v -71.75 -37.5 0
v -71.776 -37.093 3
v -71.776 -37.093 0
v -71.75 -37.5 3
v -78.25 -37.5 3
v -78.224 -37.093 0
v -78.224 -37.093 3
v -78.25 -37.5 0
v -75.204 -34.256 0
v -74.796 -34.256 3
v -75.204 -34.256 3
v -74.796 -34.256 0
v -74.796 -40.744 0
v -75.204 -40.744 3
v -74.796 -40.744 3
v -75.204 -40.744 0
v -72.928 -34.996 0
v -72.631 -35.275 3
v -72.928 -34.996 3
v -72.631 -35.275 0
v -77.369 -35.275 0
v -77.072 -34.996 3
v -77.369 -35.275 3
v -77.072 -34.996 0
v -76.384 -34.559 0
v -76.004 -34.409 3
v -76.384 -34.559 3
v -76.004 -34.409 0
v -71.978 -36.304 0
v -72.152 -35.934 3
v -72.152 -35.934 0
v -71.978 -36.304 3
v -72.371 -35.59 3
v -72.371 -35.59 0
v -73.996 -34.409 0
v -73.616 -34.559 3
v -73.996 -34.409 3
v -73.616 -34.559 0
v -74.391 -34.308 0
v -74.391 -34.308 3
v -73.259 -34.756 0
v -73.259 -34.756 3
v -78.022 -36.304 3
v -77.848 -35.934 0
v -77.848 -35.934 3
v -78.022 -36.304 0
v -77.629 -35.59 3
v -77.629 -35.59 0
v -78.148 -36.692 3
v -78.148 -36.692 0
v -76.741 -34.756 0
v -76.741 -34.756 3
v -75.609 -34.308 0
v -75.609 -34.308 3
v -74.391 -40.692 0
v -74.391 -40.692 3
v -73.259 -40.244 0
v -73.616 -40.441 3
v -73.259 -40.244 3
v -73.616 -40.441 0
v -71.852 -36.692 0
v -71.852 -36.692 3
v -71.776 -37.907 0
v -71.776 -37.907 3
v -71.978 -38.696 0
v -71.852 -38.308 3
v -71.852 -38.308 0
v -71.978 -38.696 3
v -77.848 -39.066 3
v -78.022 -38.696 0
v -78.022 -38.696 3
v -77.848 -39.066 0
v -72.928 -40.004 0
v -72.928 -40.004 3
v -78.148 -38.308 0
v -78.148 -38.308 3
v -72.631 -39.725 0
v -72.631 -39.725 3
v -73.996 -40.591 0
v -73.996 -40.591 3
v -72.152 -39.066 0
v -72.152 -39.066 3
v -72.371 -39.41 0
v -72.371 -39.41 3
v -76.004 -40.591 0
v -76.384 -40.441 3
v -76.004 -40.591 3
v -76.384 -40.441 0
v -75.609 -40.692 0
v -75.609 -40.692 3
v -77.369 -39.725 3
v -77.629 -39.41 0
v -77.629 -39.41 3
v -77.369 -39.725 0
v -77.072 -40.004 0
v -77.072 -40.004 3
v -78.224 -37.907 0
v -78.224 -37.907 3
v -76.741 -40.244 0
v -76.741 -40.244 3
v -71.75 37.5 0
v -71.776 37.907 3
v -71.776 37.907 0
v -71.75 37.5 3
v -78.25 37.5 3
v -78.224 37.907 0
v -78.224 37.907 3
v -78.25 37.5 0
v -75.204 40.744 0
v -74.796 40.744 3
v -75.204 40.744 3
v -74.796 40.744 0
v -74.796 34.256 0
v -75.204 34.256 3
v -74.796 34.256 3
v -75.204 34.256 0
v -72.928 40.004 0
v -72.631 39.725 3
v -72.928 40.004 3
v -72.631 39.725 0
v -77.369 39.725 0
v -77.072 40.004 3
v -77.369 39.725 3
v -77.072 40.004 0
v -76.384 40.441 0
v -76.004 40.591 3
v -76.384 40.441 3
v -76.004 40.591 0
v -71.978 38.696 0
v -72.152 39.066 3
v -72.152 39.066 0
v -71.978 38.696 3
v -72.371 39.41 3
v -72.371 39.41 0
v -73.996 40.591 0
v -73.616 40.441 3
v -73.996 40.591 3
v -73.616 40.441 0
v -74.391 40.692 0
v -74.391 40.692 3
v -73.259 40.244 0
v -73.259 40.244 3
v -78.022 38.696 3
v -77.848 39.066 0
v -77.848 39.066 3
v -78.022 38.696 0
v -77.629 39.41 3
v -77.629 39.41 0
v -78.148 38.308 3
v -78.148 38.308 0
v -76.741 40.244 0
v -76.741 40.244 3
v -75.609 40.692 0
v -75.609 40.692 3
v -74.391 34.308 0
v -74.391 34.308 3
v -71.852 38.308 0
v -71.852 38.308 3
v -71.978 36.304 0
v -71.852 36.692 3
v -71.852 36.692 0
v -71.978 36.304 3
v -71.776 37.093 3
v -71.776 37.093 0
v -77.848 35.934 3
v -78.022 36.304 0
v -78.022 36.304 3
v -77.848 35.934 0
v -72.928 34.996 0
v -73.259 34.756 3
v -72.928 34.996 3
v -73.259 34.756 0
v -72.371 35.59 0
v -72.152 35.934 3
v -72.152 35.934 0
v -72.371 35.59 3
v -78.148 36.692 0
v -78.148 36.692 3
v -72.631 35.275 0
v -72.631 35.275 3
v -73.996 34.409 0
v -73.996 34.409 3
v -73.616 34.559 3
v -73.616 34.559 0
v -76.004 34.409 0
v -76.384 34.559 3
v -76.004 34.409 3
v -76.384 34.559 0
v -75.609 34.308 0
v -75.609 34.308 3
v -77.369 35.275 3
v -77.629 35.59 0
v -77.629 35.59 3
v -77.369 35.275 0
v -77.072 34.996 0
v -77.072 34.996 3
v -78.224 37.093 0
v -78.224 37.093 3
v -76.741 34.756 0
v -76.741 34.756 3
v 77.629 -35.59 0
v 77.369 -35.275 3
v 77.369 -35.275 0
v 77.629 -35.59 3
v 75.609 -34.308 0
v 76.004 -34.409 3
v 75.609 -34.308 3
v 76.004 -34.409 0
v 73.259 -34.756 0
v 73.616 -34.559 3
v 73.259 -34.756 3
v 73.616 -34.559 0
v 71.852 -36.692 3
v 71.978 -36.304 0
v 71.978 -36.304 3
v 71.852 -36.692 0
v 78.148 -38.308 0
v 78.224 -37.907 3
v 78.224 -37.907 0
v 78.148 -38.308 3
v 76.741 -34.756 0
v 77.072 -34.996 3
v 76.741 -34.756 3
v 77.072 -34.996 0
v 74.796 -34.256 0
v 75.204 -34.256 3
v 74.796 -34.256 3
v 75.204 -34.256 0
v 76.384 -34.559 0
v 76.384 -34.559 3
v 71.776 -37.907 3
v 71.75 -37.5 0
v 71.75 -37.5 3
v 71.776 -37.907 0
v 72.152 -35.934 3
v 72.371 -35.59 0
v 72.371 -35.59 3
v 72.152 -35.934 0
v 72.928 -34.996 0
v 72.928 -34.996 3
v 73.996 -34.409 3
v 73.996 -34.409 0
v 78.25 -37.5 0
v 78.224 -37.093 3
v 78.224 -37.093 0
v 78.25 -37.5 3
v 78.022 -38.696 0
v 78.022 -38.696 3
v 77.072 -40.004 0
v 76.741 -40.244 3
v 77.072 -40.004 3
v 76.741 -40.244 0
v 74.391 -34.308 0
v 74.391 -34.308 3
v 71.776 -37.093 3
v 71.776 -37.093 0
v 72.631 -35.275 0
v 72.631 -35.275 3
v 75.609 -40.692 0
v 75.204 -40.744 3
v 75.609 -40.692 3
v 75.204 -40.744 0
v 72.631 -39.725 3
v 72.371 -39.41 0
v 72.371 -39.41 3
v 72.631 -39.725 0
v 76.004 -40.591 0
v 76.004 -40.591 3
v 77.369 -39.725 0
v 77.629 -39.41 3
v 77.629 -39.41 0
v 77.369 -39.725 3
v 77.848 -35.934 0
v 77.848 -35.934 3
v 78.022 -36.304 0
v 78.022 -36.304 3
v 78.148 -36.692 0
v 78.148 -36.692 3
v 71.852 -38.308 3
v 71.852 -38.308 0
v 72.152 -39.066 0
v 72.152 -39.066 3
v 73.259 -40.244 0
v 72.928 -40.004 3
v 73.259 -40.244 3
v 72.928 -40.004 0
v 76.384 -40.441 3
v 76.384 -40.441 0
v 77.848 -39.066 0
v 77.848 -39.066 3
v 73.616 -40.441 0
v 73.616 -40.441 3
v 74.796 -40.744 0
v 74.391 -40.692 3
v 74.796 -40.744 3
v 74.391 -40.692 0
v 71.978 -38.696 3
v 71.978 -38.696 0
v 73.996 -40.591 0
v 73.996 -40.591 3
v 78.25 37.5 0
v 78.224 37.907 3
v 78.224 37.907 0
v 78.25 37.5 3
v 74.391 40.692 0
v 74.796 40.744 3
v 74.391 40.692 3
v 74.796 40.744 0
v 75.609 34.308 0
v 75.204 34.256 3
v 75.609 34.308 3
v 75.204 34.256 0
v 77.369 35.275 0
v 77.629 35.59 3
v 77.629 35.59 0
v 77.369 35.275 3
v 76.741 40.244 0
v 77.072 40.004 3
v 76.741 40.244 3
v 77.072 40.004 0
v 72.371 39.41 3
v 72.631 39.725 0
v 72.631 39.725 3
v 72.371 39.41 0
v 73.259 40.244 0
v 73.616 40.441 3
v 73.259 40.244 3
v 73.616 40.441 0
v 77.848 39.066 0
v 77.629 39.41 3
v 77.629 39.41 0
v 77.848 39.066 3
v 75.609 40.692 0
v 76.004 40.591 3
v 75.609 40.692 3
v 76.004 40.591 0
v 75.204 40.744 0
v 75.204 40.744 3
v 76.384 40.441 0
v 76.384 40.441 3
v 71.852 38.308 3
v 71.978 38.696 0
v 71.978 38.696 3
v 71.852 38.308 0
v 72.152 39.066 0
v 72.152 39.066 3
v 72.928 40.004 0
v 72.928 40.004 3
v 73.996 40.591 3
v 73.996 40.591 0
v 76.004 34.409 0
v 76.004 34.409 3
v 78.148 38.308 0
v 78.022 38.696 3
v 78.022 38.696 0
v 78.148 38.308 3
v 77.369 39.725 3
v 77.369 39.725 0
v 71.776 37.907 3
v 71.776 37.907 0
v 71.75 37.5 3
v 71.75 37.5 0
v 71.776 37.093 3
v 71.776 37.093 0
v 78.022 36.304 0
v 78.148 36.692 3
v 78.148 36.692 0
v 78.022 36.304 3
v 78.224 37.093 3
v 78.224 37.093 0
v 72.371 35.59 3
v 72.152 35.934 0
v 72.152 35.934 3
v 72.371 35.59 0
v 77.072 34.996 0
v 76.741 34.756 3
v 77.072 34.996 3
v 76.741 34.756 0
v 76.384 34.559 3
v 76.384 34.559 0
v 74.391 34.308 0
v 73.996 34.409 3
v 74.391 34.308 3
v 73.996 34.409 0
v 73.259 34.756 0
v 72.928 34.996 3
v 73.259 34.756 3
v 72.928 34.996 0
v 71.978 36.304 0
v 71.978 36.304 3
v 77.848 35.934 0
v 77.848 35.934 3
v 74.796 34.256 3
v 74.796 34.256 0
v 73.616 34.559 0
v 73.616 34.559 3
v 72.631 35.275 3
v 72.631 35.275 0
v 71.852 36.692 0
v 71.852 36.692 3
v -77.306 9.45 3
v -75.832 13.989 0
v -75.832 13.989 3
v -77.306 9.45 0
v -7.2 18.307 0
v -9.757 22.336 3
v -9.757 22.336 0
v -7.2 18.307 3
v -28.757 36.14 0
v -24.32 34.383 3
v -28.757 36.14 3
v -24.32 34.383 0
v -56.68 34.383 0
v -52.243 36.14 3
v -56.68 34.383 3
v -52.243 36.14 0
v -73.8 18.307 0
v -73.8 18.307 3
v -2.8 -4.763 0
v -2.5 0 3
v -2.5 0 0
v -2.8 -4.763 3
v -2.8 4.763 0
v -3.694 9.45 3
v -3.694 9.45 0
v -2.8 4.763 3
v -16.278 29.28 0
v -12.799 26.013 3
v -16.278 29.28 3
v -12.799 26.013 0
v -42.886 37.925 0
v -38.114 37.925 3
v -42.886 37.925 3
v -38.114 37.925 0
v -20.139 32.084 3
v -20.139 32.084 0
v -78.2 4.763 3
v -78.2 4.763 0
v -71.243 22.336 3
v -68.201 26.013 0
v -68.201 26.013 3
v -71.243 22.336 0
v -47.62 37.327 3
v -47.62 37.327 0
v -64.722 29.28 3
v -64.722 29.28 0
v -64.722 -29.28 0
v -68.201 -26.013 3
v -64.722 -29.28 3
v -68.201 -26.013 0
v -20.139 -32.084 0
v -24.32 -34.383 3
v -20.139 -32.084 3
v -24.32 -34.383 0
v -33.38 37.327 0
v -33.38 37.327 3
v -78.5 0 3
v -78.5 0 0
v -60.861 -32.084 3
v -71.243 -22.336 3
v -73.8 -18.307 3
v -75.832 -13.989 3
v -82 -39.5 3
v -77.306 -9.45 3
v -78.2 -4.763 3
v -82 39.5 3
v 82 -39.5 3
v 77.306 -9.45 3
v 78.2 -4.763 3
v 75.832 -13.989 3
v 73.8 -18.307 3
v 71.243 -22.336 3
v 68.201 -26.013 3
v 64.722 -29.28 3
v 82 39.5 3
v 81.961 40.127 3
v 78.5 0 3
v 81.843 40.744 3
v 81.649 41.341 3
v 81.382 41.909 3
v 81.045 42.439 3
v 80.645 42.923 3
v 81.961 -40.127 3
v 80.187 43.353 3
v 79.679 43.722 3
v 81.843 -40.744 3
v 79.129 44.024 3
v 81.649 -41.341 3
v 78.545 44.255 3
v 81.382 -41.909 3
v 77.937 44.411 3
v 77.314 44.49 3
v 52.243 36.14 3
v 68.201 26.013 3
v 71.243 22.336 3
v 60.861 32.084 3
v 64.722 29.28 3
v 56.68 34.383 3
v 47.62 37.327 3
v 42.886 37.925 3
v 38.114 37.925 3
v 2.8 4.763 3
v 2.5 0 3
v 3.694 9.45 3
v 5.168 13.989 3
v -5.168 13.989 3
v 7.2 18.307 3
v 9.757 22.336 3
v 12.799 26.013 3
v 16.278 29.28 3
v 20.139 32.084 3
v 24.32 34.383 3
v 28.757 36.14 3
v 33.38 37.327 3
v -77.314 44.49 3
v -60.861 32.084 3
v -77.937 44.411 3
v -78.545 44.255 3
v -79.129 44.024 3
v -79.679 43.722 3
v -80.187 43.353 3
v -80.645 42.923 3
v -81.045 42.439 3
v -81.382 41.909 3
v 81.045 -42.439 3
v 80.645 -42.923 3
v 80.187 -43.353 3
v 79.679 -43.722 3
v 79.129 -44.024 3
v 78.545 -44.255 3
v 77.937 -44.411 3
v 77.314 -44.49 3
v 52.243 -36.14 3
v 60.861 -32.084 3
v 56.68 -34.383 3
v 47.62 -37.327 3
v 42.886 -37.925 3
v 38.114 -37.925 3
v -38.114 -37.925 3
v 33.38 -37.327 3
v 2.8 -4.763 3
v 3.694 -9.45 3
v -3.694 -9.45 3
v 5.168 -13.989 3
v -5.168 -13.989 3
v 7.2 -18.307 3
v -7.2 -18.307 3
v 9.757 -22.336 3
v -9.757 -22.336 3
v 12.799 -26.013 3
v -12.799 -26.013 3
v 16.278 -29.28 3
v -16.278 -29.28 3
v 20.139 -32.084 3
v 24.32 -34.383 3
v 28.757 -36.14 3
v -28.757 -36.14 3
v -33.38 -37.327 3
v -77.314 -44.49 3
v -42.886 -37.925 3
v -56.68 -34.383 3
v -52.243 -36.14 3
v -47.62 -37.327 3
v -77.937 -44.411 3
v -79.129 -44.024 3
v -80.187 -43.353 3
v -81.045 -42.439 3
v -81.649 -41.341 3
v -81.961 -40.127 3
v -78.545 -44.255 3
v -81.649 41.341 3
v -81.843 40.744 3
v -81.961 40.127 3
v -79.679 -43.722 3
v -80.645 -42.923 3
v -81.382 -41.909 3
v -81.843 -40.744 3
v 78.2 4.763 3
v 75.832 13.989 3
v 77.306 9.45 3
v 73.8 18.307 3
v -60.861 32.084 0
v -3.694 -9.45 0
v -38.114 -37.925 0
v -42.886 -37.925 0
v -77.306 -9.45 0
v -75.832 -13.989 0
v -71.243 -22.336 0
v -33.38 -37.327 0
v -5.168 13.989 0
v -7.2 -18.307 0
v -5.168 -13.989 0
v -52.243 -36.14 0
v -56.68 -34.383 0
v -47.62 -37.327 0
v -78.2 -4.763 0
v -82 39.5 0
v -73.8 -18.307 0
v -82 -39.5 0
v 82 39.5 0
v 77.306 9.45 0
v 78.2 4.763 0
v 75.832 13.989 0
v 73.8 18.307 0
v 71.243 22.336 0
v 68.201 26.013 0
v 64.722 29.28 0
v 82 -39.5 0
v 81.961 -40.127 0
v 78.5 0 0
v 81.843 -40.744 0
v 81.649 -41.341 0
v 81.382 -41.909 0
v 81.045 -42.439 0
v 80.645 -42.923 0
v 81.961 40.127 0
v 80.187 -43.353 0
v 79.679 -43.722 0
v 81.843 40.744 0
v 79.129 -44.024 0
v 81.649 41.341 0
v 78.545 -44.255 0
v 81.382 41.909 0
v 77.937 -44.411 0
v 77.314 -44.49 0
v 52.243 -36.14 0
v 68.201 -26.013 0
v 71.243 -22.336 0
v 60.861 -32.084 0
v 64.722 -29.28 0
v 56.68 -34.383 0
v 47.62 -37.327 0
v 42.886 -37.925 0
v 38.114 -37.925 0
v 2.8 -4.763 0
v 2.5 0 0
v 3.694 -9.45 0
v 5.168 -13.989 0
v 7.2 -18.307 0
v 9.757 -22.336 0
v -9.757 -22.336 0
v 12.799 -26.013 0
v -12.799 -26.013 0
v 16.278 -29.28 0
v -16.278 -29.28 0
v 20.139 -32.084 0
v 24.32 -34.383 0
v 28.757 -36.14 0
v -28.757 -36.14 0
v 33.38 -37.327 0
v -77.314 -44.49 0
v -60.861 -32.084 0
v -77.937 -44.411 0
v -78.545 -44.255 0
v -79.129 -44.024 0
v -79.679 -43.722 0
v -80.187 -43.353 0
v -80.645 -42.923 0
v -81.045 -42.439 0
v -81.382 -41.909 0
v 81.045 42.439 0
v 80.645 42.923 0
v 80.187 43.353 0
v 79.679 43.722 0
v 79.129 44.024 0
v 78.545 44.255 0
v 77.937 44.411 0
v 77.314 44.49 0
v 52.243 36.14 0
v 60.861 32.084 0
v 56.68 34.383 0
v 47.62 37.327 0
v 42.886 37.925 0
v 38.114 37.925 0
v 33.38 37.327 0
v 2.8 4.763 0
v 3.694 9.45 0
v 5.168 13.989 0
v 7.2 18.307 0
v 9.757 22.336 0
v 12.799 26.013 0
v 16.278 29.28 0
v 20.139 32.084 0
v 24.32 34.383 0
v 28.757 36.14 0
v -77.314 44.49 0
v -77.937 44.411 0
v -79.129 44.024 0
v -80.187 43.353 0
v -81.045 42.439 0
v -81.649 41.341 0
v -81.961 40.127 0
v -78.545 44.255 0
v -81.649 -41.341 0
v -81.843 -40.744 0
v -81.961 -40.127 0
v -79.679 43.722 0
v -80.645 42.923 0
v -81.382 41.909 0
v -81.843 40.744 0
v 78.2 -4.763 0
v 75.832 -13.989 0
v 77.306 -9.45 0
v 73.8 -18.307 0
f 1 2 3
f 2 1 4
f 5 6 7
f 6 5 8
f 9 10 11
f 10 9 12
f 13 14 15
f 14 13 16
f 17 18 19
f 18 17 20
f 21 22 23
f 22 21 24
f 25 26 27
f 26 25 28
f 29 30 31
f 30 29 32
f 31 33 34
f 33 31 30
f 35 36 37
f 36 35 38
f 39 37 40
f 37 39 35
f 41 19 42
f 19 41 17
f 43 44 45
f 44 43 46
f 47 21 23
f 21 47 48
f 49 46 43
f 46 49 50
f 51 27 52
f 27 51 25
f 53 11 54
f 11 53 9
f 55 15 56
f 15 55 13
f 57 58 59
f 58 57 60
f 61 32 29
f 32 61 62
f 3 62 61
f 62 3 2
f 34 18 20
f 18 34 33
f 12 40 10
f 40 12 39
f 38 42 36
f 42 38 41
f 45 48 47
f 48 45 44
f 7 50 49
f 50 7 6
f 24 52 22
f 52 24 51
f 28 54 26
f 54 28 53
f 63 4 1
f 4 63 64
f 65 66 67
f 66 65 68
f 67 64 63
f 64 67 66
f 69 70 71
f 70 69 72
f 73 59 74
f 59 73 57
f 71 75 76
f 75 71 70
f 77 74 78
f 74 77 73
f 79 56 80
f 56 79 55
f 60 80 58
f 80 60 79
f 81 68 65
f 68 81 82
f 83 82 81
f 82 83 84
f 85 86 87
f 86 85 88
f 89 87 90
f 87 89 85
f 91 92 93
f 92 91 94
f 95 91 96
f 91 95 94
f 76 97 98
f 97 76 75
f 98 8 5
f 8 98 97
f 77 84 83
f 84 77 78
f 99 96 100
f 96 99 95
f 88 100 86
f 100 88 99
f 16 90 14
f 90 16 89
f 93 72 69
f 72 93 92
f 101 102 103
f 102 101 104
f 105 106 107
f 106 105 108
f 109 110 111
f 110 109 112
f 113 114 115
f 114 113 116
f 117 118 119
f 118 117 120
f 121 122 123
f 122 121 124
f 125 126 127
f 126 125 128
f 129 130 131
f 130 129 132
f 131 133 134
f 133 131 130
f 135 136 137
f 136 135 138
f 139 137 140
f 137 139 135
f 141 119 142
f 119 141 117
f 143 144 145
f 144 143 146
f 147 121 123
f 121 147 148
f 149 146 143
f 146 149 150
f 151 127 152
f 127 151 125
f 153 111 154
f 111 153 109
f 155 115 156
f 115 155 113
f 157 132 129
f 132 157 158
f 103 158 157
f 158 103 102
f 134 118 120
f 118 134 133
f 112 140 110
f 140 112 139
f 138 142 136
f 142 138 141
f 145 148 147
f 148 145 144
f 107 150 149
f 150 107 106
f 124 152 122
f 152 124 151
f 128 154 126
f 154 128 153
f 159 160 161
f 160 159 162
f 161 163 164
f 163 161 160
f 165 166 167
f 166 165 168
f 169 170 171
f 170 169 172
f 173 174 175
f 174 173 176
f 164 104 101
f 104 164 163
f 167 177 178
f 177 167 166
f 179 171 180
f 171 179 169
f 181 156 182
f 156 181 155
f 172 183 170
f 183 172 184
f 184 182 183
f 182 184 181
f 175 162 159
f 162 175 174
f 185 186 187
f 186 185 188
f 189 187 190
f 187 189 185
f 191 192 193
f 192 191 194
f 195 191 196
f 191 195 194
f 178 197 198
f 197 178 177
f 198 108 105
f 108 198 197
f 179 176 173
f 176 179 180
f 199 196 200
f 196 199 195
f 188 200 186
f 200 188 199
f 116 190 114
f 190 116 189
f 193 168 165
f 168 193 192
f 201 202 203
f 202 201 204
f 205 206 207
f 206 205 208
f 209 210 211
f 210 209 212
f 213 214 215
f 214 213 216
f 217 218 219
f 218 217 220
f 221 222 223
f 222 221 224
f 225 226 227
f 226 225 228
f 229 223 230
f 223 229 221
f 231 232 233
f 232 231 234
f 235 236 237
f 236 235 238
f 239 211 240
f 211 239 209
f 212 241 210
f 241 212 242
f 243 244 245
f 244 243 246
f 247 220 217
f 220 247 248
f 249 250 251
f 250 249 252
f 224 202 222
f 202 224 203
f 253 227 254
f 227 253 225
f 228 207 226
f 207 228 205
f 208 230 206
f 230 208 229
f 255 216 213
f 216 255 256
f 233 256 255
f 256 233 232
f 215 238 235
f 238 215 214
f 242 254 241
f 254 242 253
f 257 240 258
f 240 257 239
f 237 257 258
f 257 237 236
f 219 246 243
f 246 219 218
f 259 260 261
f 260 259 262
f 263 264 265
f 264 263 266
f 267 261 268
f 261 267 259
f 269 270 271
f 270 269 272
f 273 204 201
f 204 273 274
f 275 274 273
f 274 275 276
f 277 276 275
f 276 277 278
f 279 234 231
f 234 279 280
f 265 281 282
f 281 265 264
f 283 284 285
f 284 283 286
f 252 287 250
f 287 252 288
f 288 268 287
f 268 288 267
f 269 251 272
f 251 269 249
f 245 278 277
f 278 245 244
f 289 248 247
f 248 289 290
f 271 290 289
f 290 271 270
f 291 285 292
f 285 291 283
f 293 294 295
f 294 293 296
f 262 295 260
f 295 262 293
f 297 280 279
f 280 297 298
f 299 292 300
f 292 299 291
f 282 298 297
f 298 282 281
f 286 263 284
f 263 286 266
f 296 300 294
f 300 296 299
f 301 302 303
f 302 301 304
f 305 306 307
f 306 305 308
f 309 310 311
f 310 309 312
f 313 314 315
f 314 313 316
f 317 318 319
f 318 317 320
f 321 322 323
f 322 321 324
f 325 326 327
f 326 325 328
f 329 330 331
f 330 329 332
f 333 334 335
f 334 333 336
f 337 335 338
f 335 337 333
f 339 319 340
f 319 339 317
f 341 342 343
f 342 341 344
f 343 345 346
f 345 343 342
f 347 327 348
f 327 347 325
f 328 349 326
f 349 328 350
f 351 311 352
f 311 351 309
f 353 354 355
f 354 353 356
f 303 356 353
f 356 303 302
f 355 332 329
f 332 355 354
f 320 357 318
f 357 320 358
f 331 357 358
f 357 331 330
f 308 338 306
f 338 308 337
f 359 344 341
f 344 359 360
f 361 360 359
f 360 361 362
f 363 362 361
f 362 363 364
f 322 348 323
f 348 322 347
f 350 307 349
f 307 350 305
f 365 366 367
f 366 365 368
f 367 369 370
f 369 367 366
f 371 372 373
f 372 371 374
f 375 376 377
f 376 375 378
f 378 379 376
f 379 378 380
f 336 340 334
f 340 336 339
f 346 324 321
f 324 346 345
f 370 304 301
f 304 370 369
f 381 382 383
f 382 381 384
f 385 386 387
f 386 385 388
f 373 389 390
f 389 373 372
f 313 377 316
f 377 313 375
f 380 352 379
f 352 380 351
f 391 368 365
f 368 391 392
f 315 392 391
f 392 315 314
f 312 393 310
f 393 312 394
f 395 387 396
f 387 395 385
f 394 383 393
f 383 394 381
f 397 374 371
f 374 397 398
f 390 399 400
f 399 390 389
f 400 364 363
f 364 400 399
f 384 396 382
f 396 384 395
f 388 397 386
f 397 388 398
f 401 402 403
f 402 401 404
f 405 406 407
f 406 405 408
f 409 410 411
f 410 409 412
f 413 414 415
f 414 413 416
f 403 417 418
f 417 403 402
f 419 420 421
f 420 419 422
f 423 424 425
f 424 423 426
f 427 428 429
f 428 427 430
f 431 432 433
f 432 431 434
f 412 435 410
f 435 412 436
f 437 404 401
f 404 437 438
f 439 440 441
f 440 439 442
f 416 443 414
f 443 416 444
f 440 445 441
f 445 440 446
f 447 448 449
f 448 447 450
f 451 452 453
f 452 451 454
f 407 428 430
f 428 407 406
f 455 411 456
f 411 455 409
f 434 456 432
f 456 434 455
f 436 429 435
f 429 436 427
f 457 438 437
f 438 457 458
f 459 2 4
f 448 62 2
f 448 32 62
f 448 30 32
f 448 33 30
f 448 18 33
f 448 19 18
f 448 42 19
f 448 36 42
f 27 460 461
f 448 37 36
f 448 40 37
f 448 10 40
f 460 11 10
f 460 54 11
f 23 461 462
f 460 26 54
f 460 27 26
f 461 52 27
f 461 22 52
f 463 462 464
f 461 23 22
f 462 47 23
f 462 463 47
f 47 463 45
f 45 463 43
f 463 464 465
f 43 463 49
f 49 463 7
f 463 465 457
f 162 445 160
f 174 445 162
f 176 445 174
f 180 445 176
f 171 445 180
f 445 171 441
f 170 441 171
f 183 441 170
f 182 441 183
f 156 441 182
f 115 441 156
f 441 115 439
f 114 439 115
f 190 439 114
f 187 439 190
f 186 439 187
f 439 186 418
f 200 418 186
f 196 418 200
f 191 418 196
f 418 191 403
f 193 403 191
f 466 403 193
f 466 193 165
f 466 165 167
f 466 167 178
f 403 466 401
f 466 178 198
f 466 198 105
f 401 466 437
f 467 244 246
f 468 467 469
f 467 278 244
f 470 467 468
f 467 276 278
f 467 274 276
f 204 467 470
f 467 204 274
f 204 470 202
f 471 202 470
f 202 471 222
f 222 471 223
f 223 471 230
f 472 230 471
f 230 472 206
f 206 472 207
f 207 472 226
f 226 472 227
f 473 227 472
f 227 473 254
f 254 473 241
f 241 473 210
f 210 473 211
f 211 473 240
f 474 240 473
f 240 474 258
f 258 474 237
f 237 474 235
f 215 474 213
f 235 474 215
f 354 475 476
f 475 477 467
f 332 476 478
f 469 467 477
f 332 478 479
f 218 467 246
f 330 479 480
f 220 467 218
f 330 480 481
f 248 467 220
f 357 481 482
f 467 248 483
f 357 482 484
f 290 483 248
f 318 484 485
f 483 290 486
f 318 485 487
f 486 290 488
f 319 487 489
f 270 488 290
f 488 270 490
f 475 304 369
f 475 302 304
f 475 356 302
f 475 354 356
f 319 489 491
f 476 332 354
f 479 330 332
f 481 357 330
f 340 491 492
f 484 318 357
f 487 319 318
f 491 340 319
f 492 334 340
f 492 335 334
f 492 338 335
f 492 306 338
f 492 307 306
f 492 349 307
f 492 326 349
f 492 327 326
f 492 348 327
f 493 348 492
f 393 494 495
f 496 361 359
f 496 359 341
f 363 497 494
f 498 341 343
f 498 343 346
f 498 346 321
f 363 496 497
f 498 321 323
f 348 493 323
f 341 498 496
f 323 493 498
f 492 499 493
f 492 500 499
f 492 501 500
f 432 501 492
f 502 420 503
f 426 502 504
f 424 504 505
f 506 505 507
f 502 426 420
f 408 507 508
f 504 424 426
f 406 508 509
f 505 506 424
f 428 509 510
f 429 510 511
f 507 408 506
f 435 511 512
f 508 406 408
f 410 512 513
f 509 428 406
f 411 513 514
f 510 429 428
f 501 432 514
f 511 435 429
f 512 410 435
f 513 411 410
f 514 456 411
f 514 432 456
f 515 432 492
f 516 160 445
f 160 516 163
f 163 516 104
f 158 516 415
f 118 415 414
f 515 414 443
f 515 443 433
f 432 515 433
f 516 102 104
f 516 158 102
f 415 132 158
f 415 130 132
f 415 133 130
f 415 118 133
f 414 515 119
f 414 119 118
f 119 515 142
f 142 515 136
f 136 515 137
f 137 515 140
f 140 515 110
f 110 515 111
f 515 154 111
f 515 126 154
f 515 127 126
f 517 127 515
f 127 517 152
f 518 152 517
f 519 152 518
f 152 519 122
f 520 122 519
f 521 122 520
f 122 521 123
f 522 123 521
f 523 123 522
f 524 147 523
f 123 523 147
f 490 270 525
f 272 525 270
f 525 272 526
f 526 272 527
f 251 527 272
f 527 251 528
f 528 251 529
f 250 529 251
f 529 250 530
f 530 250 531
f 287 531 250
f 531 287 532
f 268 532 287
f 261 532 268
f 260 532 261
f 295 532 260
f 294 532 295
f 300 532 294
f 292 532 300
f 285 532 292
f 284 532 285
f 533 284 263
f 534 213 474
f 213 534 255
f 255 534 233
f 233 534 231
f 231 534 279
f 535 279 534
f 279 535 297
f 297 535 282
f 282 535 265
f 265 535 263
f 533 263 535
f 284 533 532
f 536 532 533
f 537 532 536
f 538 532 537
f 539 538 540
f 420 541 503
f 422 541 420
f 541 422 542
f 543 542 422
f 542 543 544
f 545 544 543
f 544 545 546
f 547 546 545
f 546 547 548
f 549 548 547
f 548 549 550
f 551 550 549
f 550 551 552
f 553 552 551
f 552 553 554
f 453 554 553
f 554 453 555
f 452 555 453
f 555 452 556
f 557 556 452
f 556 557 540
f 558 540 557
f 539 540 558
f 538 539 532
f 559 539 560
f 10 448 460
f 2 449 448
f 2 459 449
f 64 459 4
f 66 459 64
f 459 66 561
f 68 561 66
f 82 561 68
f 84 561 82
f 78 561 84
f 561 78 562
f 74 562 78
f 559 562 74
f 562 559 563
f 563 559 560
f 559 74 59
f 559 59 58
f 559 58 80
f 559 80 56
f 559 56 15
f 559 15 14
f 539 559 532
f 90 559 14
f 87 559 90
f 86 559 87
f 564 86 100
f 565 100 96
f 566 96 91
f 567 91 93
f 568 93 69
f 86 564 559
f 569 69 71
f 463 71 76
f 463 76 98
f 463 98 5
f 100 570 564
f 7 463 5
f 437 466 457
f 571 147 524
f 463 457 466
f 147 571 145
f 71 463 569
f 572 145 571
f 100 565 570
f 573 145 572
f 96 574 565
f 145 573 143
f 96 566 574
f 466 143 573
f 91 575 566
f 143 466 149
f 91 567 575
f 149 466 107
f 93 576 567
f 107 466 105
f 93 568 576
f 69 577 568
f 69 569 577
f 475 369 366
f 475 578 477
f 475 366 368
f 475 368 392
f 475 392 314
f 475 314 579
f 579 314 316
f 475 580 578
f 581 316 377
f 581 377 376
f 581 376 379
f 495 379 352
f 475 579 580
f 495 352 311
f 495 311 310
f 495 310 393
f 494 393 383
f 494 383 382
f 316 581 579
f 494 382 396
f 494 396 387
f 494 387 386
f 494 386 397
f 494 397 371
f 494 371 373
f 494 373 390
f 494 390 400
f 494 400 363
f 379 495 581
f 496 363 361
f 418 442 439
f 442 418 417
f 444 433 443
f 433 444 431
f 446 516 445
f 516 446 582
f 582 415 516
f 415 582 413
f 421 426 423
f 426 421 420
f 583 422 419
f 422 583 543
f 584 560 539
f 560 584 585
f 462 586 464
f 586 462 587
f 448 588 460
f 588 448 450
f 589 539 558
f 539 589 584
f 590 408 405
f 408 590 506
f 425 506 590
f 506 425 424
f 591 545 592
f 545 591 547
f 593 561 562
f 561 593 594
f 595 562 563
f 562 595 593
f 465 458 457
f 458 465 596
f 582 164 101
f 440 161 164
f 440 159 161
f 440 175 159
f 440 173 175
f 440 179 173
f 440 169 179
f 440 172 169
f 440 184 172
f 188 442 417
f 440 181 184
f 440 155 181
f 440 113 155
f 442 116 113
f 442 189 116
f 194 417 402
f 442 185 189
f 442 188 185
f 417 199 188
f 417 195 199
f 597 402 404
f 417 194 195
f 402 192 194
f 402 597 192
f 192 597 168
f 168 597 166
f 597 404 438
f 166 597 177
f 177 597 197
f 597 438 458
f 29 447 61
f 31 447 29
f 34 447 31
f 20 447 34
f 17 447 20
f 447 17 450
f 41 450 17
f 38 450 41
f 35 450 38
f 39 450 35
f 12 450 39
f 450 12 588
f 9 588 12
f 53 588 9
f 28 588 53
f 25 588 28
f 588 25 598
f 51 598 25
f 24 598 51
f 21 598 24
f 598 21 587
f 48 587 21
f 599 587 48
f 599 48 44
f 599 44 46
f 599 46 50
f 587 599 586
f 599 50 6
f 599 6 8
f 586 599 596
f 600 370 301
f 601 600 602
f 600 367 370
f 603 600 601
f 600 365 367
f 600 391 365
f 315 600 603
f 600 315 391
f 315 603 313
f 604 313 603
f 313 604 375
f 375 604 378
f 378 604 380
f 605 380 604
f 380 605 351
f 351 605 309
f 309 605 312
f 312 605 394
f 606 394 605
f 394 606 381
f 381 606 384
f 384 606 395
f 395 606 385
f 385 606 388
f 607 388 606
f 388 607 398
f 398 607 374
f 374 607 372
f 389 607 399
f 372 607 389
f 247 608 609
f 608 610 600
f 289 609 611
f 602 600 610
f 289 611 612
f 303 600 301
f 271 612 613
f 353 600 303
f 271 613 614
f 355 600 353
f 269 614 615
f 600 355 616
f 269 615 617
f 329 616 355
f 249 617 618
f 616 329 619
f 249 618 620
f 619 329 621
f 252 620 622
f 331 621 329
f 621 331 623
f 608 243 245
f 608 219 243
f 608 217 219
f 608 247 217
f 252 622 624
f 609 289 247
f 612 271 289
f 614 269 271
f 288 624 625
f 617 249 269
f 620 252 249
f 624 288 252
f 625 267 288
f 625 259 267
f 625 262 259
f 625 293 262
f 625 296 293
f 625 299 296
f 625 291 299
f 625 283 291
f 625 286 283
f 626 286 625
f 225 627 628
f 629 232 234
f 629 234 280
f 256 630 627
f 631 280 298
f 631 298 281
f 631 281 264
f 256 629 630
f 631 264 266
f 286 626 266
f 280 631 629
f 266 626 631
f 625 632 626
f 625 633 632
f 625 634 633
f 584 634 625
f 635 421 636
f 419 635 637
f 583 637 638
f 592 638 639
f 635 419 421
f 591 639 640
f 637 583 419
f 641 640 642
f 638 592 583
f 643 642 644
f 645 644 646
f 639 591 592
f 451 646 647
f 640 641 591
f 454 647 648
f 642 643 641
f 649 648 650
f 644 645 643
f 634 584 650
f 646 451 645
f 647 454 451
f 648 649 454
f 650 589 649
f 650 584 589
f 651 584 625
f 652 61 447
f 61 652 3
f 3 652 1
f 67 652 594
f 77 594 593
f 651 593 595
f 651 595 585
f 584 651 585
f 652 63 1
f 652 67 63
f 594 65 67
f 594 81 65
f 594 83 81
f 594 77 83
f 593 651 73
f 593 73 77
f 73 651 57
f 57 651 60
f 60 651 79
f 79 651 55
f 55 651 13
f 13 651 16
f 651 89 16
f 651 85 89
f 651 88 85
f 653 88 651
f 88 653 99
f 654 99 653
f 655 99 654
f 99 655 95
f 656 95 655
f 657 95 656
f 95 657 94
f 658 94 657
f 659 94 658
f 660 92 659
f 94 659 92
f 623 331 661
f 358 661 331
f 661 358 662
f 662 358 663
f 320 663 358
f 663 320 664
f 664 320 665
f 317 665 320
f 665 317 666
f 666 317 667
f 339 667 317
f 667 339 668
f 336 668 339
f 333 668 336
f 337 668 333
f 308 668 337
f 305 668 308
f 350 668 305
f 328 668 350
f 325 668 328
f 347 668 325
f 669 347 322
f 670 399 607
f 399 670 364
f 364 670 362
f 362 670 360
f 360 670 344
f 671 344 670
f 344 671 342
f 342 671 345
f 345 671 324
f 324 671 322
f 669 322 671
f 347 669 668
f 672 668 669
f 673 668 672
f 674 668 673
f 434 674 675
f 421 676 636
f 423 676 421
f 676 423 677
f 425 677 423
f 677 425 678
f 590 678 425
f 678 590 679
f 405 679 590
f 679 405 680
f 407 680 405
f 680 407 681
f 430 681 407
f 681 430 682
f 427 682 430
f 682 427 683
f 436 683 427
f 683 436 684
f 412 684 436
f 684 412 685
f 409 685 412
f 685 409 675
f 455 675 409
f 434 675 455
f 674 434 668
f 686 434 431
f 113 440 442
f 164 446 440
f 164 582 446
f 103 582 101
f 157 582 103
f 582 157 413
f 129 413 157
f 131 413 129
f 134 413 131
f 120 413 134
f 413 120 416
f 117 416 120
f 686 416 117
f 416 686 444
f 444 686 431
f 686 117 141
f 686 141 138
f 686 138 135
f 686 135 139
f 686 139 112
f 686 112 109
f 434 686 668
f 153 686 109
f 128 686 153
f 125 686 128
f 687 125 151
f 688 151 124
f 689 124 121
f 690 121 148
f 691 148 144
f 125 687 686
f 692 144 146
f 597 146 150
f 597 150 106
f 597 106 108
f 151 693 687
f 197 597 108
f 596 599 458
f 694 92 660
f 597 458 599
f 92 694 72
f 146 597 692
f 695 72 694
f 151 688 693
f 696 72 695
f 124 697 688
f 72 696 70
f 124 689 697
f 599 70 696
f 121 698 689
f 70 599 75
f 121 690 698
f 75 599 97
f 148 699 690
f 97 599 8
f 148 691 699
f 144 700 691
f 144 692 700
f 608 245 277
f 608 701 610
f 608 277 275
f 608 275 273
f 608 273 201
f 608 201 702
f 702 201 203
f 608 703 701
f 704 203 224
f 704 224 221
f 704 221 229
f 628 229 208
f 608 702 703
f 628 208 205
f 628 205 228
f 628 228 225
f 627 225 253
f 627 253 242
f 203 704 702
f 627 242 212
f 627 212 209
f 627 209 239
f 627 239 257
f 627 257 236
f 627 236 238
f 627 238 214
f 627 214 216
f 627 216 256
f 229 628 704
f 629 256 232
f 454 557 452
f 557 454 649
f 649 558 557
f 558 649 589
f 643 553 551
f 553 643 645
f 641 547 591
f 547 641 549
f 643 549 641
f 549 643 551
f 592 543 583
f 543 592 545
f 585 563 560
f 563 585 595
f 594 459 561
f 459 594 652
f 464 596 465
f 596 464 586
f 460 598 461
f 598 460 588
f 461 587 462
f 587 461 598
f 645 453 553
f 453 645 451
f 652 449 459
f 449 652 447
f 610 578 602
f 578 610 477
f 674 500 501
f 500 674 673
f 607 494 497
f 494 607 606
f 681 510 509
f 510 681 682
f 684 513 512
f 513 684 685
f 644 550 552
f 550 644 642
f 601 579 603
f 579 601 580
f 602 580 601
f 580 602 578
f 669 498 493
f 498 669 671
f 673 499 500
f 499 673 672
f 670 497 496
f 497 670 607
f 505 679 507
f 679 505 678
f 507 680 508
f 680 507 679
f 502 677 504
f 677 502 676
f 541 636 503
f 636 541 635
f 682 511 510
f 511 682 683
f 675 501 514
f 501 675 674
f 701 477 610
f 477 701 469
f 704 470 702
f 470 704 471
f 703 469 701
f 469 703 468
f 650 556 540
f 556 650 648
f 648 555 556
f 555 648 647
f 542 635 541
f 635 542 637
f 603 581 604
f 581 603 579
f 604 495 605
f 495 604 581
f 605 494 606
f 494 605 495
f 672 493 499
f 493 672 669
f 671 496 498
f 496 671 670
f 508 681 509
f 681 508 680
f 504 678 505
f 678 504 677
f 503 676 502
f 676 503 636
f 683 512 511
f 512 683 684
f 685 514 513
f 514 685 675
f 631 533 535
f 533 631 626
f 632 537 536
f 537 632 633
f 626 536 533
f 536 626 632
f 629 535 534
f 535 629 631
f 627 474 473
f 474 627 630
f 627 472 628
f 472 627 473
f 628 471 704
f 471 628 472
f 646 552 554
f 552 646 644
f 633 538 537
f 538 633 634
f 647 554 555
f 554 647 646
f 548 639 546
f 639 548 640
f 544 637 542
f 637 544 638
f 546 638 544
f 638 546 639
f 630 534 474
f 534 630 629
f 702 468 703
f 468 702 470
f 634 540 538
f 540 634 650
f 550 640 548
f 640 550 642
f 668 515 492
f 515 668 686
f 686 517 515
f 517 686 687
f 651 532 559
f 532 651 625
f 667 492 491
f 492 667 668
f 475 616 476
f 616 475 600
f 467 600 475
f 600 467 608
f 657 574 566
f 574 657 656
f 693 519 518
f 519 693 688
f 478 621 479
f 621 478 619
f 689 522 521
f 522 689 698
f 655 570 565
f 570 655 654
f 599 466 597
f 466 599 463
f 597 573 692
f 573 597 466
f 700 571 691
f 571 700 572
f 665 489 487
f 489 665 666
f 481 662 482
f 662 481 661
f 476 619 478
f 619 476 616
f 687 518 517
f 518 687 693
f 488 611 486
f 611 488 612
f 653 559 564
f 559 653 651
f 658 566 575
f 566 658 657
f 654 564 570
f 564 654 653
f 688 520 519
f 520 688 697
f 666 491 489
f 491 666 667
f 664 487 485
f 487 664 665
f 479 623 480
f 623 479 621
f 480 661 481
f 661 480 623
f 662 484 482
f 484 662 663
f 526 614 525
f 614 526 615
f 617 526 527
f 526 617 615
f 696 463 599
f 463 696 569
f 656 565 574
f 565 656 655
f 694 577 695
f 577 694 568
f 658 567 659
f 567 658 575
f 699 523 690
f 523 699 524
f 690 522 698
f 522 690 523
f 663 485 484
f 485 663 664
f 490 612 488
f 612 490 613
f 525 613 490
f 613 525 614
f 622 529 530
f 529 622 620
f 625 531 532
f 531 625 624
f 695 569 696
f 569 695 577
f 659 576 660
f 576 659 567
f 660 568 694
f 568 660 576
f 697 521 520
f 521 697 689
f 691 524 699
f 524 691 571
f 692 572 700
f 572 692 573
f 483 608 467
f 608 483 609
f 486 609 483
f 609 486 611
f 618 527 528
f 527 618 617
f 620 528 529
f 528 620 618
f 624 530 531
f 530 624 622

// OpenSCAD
$fn = 50;


difference() {
	union() {
		hull() {
			translate(v = [-77.0000000000, 39.5000000000, 0]) {
				cylinder(h = 3, r = 5);
			}
			translate(v = [77.0000000000, 39.5000000000, 0]) {
				cylinder(h = 3, r = 5);
			}
			translate(v = [-77.0000000000, -39.5000000000, 0]) {
				cylinder(h = 3, r = 5);
			}
			translate(v = [77.0000000000, -39.5000000000, 0]) {
				cylinder(h = 3, r = 5);
			}
		}
	}
	union() {
		#translate(v = [-75.0000000000, -37.5000000000, -100.0000000000]) {
			cylinder(h = 200, r = 3.2500000000);
		}
		#translate(v = [-75.0000000000, 37.5000000000, -100.0000000000]) {
			cylinder(h = 200, r = 3.2500000000);
		}
		#translate(v = [75.0000000000, -37.5000000000, -100.0000000000]) {
			cylinder(h = 200, r = 3.2500000000);
		}
		#translate(v = [75.0000000000, 37.5000000000, -100.0000000000]) {
			cylinder(h = 200, r = 3.2500000000);
		}
		#translate(v = [-40.5000000000, 0, 0]) {
			cylinder(h = 3, r = 38.0000000000);
		}
		#translate(v = [40.5000000000, 0, 0]) {
			cylinder(h = 3, r = 38.0000000000);
		}
	}
}
